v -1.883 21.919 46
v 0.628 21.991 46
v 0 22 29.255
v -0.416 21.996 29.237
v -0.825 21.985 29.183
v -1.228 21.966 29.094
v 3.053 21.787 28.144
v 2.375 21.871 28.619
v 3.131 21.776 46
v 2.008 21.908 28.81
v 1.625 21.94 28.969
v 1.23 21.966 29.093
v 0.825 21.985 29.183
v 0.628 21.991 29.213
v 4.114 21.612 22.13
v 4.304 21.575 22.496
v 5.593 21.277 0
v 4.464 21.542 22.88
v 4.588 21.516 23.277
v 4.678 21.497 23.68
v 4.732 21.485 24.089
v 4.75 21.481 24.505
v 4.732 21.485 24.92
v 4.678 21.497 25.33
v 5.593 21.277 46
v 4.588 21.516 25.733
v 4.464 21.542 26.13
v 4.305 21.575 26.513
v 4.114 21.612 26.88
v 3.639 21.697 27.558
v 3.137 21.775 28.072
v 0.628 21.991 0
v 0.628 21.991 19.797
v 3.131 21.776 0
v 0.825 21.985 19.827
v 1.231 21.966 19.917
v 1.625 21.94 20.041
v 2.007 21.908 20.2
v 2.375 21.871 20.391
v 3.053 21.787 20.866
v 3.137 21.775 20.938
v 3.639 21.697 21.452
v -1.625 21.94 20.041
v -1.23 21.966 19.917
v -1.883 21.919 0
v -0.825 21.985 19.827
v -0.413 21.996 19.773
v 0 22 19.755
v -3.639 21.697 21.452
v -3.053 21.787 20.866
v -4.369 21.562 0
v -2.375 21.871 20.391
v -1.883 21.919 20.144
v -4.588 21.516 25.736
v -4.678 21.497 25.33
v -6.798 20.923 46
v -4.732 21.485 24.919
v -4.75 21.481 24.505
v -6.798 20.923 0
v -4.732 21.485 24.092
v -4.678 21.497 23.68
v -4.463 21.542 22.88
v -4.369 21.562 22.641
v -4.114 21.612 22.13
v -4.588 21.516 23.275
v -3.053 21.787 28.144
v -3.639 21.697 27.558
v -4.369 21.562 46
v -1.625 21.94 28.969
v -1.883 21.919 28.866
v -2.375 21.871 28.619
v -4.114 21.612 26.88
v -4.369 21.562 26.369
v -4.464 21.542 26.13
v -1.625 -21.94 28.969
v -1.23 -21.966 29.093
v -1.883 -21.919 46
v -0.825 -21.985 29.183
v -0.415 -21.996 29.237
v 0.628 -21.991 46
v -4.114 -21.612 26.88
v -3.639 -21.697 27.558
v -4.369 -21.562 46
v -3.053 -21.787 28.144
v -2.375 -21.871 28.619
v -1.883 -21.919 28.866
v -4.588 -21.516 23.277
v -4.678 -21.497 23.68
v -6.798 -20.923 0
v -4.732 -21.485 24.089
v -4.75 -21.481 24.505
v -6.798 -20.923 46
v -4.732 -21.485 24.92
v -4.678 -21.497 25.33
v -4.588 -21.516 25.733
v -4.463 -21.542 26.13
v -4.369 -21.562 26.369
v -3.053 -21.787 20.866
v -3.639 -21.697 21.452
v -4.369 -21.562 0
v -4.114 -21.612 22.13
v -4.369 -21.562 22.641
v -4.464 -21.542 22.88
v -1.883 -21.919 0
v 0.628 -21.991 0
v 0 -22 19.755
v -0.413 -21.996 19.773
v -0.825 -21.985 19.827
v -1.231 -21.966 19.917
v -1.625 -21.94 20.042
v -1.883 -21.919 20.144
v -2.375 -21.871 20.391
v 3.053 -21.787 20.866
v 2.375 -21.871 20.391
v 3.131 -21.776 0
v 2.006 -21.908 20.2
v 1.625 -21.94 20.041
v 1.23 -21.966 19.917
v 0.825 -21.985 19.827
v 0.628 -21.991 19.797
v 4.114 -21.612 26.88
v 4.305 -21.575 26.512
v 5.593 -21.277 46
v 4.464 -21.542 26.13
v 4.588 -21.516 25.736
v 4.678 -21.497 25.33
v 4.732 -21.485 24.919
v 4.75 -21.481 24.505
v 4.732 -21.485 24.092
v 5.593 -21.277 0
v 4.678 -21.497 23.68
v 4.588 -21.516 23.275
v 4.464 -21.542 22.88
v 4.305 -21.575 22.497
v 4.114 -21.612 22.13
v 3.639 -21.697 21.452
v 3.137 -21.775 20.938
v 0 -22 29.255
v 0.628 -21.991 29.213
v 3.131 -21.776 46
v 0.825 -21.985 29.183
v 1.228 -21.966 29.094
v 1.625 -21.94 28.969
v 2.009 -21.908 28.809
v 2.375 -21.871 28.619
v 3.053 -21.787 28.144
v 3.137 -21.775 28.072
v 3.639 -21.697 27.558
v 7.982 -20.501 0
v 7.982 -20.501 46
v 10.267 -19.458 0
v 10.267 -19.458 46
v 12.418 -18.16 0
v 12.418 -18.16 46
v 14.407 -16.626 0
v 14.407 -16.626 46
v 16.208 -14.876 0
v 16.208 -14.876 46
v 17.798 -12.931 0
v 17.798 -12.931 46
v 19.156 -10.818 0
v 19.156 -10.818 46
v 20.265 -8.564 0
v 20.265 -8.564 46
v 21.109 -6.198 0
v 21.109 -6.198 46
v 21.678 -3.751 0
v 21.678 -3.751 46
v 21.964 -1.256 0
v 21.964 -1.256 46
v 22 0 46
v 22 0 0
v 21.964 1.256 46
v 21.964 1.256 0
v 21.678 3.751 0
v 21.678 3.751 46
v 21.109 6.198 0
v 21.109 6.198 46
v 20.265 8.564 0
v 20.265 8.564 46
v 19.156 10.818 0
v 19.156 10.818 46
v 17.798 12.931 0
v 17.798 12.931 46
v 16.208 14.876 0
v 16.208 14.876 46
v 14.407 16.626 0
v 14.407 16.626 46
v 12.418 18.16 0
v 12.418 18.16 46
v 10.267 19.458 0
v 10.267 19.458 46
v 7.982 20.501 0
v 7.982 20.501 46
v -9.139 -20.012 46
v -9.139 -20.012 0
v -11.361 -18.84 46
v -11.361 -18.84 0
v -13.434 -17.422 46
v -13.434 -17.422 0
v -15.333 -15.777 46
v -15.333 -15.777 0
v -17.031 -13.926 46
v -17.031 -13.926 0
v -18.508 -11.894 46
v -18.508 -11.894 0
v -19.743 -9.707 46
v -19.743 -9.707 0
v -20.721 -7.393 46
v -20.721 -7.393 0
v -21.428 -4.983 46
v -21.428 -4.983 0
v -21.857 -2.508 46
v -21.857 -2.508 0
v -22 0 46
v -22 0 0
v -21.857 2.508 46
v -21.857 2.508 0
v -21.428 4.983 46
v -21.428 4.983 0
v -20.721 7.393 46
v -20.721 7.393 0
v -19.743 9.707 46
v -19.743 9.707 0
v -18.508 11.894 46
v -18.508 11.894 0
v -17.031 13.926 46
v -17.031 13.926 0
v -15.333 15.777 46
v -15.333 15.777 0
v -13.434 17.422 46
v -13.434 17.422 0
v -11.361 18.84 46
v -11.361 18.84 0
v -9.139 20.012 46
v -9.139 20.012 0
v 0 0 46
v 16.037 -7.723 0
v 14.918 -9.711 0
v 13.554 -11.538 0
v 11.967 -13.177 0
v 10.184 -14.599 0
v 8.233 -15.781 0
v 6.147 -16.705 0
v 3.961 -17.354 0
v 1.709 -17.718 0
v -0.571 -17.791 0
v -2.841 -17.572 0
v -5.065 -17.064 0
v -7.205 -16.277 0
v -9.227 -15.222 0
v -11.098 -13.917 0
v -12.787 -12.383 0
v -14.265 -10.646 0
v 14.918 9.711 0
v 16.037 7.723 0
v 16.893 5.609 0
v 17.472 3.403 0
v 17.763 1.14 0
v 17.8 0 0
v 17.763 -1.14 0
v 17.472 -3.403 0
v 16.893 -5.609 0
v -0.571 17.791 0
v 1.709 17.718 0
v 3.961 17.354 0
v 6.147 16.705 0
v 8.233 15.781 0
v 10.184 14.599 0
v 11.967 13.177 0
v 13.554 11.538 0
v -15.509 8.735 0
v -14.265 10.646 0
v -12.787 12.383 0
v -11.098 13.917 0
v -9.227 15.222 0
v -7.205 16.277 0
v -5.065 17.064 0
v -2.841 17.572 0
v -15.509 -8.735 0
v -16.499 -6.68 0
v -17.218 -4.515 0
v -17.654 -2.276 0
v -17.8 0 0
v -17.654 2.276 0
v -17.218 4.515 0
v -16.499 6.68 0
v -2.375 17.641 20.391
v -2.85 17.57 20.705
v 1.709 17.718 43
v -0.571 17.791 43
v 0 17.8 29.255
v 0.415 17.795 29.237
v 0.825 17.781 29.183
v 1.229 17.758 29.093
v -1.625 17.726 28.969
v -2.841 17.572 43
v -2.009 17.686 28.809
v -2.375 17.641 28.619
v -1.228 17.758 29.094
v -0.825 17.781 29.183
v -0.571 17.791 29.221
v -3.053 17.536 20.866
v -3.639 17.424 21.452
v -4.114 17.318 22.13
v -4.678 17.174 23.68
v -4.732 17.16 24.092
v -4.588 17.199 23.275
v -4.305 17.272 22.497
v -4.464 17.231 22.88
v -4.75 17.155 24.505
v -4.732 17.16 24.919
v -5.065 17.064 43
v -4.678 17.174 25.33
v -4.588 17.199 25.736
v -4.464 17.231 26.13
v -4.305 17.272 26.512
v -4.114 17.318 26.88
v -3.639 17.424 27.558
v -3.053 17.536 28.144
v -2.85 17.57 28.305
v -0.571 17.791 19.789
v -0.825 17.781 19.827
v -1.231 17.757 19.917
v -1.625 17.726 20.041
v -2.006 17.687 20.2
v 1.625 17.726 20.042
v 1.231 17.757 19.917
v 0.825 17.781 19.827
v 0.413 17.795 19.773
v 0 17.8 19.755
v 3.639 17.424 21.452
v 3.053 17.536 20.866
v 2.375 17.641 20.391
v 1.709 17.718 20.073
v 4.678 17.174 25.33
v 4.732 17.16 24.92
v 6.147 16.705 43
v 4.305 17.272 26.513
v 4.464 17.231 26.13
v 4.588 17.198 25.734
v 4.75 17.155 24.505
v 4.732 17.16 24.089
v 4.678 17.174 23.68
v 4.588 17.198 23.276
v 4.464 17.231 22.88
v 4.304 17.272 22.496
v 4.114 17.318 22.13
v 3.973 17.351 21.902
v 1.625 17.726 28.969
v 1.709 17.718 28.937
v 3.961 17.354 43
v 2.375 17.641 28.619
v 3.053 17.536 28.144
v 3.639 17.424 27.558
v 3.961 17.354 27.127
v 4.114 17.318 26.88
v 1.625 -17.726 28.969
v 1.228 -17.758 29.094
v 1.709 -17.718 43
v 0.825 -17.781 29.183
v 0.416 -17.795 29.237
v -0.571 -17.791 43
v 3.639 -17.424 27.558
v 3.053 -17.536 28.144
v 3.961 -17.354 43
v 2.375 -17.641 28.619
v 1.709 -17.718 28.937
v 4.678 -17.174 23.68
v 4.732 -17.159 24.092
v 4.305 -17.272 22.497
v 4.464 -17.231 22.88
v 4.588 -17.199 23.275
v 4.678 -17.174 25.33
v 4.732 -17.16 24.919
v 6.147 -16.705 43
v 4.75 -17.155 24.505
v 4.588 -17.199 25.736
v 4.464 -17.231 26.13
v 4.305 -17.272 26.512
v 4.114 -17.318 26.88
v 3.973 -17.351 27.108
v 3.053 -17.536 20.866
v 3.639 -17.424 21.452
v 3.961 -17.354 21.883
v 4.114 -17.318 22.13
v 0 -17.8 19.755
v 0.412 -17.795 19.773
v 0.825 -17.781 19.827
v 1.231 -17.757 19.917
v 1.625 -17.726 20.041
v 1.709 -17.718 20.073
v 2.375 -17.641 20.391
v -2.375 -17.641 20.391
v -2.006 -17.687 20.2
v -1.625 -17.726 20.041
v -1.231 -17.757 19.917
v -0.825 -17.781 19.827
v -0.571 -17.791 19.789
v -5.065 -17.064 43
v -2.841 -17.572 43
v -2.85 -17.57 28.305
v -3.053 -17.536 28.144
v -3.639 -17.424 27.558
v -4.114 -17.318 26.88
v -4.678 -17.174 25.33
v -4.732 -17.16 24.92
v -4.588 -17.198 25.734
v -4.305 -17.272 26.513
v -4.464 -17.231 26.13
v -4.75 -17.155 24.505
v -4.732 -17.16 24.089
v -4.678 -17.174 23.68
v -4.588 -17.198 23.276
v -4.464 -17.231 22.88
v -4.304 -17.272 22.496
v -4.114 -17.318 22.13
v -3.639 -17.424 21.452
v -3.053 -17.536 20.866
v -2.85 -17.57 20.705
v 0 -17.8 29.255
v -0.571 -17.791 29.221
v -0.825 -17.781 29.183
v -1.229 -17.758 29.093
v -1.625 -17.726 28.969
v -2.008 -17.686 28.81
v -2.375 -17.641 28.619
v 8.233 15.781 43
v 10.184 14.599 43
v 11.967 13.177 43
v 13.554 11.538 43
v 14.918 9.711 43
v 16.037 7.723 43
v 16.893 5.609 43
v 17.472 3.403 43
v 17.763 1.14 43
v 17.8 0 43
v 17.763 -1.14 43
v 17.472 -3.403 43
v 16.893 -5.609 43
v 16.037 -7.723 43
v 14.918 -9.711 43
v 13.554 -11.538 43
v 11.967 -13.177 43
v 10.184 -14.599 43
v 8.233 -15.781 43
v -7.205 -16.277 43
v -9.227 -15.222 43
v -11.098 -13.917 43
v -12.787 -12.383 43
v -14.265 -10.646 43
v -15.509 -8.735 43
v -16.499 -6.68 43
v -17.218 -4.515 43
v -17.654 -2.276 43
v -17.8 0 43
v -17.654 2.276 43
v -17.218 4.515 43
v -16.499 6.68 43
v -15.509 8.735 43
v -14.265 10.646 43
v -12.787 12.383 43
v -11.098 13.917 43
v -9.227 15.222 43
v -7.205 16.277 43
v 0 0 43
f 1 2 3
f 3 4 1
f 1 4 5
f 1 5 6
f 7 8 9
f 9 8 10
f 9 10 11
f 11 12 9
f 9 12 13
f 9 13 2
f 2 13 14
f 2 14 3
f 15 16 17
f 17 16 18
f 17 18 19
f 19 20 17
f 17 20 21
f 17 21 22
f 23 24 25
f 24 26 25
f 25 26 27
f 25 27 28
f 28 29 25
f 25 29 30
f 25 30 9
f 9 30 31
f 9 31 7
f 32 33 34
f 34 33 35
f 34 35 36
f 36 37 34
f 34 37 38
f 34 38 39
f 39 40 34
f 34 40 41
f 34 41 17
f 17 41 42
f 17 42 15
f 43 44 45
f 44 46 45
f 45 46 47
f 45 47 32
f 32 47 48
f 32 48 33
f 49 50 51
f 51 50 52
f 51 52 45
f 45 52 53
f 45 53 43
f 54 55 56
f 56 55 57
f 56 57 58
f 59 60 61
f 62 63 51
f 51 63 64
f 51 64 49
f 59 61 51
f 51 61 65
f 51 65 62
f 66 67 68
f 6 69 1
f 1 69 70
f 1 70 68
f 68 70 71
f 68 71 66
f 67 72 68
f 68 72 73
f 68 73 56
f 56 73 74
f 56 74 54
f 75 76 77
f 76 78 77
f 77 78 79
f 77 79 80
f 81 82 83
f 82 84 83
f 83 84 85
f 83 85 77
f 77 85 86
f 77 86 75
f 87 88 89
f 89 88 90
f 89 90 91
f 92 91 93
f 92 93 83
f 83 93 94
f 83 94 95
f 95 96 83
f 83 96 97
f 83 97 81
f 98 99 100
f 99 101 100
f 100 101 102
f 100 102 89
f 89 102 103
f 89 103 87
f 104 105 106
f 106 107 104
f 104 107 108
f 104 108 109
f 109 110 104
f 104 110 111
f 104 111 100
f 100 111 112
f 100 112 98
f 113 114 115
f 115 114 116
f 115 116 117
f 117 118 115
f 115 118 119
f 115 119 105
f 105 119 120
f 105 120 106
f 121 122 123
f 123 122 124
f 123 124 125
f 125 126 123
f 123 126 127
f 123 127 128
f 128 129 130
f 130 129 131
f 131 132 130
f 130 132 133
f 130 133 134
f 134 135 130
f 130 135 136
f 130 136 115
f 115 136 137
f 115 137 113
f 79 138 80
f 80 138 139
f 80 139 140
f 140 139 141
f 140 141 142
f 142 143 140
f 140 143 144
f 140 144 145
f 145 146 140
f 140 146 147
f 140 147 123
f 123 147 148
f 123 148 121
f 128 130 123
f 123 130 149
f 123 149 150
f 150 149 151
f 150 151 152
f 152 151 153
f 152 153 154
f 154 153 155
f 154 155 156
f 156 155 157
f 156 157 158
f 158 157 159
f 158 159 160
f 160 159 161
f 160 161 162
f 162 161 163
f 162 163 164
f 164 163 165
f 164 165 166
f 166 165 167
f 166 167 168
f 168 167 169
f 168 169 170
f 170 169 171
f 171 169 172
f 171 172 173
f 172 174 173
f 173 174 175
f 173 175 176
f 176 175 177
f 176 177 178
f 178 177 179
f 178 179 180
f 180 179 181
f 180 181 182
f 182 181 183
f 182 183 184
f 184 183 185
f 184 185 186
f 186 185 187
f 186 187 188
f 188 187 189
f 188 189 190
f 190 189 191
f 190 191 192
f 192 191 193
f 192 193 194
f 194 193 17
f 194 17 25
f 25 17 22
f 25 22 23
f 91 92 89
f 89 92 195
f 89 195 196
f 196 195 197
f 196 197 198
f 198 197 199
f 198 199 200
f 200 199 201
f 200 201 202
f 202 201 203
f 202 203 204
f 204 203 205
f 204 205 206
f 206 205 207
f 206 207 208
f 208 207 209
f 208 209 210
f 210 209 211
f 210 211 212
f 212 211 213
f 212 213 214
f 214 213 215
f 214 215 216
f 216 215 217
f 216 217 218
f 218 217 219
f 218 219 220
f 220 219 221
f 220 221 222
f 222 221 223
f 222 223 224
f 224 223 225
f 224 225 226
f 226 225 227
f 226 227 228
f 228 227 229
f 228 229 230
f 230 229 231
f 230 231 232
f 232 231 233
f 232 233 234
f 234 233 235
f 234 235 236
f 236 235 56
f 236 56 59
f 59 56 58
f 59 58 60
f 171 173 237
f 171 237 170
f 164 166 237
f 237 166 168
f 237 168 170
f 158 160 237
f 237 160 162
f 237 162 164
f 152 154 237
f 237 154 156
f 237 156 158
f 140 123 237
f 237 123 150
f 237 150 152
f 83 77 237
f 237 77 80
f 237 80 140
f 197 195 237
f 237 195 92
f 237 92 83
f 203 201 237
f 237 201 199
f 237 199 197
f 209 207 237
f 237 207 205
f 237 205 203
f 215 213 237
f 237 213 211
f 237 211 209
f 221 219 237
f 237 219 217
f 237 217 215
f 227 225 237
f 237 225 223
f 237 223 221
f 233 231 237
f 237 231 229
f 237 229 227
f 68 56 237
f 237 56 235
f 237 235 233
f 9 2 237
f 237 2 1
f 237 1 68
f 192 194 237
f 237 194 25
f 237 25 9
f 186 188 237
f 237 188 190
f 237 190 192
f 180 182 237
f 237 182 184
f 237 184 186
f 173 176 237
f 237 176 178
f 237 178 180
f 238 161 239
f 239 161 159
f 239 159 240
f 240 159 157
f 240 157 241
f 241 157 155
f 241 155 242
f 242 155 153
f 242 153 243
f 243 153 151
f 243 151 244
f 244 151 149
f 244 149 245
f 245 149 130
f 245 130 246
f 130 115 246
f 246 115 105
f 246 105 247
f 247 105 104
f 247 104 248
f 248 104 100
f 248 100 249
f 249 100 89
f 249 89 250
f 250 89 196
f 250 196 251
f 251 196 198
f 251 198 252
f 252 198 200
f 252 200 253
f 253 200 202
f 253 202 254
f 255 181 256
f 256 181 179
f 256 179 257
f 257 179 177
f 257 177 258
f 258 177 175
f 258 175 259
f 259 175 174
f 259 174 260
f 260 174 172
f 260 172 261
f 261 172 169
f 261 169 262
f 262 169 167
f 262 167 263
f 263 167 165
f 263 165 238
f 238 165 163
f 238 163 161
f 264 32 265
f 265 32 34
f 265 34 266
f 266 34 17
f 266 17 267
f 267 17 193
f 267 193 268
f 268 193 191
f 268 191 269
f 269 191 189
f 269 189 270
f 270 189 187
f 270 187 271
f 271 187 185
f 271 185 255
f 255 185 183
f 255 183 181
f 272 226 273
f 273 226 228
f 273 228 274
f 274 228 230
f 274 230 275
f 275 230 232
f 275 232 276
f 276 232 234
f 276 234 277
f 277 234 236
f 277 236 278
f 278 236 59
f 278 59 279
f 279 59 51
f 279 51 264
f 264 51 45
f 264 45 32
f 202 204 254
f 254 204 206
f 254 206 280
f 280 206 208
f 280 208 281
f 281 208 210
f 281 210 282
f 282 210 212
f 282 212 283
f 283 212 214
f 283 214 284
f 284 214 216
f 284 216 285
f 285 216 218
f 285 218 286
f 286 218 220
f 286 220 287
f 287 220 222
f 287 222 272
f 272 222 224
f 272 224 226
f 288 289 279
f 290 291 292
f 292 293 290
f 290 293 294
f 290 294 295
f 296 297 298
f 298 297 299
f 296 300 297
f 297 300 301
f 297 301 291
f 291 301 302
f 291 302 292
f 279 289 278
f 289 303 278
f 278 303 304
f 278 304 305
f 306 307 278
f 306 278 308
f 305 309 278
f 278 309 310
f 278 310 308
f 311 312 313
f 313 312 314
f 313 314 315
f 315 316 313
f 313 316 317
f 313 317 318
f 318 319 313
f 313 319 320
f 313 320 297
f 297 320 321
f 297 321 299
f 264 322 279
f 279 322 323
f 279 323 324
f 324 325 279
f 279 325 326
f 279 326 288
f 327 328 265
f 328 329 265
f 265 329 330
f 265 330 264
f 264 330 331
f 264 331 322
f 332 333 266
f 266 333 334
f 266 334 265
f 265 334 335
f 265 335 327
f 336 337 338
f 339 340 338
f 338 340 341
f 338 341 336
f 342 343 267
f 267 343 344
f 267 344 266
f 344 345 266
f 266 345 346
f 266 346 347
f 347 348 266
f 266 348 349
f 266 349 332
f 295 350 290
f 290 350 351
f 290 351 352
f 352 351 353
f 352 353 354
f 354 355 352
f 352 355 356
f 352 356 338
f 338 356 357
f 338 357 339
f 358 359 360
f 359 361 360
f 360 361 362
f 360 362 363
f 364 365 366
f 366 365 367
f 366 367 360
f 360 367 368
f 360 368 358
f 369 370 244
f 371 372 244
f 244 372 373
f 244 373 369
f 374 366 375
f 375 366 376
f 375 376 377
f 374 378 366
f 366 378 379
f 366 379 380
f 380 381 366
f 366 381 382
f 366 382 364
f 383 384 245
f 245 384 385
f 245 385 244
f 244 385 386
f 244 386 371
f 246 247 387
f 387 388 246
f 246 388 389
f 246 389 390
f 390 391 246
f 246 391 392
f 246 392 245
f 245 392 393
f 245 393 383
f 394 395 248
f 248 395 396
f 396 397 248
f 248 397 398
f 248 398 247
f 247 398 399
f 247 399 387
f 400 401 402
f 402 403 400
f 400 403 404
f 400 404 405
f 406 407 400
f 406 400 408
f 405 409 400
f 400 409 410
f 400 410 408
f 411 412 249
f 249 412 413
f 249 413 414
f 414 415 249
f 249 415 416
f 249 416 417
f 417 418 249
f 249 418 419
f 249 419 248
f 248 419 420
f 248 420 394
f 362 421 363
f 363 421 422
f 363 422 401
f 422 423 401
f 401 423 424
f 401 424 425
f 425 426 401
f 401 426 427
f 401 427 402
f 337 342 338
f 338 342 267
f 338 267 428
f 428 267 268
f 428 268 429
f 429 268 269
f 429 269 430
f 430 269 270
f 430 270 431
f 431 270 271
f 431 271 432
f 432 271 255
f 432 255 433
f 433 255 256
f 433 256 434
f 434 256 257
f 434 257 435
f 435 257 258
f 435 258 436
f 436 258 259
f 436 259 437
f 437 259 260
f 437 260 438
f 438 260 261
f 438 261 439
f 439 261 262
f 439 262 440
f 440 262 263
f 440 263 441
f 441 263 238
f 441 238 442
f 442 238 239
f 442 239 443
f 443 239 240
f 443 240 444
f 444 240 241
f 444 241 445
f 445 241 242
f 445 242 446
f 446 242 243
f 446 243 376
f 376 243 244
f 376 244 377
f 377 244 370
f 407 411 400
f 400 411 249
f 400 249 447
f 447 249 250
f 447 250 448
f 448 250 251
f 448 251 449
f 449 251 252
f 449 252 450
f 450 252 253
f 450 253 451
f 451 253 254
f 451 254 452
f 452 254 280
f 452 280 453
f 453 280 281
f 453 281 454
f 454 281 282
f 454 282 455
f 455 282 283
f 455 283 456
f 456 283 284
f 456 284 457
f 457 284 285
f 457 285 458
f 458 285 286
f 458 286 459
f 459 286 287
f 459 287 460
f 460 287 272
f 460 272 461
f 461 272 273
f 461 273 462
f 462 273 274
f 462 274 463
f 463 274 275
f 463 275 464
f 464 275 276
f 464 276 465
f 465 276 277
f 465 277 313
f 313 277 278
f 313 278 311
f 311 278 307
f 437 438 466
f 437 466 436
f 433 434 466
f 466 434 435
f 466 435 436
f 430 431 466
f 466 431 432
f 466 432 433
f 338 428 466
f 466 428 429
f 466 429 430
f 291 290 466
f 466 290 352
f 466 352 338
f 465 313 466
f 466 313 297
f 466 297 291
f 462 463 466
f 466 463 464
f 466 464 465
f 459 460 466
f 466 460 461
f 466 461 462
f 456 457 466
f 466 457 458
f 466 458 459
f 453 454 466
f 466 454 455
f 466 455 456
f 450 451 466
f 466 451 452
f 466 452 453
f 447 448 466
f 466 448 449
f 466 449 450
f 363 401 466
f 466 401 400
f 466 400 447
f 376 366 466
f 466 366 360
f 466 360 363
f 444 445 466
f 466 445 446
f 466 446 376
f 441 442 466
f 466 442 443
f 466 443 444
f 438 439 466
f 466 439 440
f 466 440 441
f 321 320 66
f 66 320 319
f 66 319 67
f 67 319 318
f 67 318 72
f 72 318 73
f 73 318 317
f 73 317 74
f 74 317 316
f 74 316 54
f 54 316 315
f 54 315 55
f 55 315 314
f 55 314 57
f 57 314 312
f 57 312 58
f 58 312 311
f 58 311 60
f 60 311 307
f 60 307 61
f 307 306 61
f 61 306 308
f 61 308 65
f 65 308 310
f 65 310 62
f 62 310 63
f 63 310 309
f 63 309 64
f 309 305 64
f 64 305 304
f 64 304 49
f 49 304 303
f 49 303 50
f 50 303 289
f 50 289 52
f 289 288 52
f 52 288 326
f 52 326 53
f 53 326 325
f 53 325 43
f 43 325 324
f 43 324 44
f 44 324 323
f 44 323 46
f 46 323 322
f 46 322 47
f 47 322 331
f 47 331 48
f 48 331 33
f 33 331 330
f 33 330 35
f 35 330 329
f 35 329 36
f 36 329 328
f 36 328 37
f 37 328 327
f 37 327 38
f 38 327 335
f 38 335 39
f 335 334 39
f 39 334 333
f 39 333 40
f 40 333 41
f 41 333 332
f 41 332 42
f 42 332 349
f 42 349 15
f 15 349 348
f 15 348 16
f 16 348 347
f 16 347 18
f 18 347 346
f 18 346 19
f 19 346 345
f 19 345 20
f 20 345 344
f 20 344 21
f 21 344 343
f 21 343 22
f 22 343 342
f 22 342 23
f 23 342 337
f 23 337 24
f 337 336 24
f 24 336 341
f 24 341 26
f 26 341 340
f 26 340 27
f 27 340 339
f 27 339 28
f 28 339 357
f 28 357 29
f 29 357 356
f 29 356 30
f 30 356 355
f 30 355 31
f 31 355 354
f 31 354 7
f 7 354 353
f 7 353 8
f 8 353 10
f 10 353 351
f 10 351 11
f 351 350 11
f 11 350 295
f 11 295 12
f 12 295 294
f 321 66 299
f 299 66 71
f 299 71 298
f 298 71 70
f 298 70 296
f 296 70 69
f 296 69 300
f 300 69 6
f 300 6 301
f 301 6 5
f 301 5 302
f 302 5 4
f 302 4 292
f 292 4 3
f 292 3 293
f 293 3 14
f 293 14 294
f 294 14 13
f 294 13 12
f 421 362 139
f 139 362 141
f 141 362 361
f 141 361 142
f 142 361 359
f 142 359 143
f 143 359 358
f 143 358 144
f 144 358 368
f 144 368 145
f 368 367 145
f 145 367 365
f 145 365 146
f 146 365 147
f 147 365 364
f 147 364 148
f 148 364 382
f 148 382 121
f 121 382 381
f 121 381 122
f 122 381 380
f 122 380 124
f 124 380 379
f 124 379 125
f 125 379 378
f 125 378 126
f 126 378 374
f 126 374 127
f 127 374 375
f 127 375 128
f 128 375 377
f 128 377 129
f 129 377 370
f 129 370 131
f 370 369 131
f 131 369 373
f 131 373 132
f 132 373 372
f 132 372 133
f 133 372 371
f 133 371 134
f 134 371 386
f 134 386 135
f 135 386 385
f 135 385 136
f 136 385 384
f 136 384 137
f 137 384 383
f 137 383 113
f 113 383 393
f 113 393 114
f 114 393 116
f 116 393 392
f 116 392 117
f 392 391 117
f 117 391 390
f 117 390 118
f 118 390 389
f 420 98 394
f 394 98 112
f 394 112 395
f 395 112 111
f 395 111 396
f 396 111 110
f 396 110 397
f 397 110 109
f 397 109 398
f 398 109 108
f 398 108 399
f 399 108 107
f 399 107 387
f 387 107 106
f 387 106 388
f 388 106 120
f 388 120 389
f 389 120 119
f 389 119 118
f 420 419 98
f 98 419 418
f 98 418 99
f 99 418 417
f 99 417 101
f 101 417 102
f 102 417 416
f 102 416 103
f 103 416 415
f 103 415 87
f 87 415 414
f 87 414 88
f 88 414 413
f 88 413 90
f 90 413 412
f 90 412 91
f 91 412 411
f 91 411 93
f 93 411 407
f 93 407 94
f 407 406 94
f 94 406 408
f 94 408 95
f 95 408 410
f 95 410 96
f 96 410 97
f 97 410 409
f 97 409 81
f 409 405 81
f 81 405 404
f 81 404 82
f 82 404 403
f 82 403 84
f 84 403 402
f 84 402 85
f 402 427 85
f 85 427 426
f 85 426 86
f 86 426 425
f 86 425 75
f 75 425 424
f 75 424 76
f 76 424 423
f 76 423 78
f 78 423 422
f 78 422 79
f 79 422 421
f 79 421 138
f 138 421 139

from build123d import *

# Parameters (mm, degrees)
ESBO_O7_R                  = 22
RESSALTO_EXTRUS_O1_DEPTH   = 46
ESBO_O11_R                 = 17.8
CORTE_EXTRUS_O1_DEPTH      = 43
CORTE_EXTRUS_O3_DEPTH      = 56.533773508
CORTE_EXTRUS_O3_DEPTH_BACK = 56.533773508
ESBO_O15_R                 = 4.75


with BuildPart() as part:
    # Esboço7 → Ressalto-extrusão1 (new body)
    with BuildSketch(Plane.XY):
        Circle(ESBO_O7_R)
    extrude(amount=RESSALTO_EXTRUS_O1_DEPTH)

    # Esboço11 → Corte-extrusão1 (cut)
    with BuildSketch(Plane.XY):
        Circle(ESBO_O11_R)
    extrude(amount=CORTE_EXTRUS_O1_DEPTH, mode=Mode.SUBTRACT)

    # Esboço15 → Corte-extrusão3 (cut, two sides: drawn at the far end of the back side and taken through both)
    with BuildSketch(Plane(origin=(0, 0, 0), x_dir=(1, 0, 0), z_dir=(0, 1, 0)).offset(-CORTE_EXTRUS_O3_DEPTH_BACK)):
        with Locations(Location((0, -24.505035598, 0), (0, 0, 270))):
            Circle(ESBO_O15_R)
    extrude(amount=CORTE_EXTRUS_O3_DEPTH + CORTE_EXTRUS_O3_DEPTH_BACK, mode=Mode.SUBTRACT)


solid = part.part
